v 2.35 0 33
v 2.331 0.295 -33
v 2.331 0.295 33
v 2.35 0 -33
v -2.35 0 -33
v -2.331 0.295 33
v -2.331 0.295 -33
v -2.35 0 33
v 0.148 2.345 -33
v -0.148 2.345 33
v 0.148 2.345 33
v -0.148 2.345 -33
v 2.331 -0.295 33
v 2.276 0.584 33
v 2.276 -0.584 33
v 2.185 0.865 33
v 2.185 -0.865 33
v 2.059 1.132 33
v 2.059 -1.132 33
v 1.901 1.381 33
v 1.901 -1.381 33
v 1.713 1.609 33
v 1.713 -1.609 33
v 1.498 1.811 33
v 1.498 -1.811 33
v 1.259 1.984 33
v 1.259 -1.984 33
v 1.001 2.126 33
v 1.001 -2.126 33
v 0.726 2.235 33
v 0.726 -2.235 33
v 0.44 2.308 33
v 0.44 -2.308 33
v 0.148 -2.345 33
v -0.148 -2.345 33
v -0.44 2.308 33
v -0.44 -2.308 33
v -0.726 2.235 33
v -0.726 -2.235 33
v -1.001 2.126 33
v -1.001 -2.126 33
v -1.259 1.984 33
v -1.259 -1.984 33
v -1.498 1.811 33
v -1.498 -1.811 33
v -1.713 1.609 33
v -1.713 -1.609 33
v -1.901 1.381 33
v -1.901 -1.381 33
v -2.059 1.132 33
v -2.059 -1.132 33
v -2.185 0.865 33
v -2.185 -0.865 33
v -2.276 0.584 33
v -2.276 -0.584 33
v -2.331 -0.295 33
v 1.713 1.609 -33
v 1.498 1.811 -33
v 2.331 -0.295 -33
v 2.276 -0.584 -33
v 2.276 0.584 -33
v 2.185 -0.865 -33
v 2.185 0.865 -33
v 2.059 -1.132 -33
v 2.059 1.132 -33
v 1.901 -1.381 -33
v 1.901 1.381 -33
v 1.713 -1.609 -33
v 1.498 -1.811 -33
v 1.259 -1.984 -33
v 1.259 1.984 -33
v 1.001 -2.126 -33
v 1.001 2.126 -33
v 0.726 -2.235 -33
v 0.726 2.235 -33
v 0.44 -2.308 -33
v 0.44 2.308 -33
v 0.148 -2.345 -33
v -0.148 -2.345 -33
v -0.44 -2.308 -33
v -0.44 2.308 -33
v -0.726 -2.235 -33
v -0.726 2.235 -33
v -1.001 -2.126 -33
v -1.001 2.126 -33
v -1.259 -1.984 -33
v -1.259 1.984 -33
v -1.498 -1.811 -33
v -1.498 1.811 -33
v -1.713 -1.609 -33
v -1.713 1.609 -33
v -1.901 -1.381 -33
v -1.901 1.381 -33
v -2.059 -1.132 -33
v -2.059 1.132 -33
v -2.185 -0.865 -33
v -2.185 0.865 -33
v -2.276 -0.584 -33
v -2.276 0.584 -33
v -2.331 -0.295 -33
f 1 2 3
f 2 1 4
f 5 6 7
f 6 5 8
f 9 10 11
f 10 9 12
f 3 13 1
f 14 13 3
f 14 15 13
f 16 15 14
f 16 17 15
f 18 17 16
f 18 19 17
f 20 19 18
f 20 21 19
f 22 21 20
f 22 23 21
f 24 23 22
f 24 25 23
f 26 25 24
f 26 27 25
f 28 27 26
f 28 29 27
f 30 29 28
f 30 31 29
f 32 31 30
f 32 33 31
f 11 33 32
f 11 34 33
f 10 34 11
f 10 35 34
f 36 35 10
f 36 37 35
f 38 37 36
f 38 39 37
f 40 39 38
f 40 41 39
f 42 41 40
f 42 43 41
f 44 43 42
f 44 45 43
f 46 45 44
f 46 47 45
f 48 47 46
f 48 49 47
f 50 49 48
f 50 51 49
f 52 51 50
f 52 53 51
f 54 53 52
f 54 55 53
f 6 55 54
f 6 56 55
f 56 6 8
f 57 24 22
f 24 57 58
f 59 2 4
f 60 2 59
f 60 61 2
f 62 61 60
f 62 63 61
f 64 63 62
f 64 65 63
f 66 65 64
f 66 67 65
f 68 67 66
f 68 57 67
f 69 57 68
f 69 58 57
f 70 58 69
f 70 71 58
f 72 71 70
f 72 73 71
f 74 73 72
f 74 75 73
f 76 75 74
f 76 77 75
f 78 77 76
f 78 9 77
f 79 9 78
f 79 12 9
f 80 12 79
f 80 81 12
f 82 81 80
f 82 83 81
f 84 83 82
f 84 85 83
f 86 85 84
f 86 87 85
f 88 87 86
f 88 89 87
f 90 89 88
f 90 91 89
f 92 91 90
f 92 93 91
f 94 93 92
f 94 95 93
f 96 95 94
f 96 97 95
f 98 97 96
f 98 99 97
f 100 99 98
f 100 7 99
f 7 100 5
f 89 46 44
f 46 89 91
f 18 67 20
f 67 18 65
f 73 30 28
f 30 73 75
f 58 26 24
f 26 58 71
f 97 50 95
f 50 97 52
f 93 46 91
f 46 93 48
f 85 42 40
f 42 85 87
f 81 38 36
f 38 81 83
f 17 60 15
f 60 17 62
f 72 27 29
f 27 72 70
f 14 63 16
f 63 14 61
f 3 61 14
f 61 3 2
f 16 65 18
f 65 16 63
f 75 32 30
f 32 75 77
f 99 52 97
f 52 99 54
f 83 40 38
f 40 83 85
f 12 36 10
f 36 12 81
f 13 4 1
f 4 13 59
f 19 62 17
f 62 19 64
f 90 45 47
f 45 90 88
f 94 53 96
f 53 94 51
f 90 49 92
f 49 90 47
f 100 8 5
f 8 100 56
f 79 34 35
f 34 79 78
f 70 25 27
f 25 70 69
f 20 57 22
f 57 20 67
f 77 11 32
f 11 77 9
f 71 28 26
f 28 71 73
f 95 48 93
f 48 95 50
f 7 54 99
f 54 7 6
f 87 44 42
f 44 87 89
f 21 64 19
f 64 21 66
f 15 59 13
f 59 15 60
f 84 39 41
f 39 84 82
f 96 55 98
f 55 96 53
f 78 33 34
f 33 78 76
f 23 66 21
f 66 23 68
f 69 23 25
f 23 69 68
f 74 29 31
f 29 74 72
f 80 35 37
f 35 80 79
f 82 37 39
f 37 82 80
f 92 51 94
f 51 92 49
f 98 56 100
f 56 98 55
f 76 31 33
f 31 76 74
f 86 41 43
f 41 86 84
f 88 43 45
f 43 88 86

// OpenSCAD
$fn = 50;


difference() {
	union() {
		translate(v = [0, 0, -33.0000000000]) {
			cylinder(h = 66, r = 2.3500000000);
		}
	}
	union() {
		translate(v = [0, 0, -100.0000000000]) {
			cylinder(h = 200, r = 0);
		}
	}
}
